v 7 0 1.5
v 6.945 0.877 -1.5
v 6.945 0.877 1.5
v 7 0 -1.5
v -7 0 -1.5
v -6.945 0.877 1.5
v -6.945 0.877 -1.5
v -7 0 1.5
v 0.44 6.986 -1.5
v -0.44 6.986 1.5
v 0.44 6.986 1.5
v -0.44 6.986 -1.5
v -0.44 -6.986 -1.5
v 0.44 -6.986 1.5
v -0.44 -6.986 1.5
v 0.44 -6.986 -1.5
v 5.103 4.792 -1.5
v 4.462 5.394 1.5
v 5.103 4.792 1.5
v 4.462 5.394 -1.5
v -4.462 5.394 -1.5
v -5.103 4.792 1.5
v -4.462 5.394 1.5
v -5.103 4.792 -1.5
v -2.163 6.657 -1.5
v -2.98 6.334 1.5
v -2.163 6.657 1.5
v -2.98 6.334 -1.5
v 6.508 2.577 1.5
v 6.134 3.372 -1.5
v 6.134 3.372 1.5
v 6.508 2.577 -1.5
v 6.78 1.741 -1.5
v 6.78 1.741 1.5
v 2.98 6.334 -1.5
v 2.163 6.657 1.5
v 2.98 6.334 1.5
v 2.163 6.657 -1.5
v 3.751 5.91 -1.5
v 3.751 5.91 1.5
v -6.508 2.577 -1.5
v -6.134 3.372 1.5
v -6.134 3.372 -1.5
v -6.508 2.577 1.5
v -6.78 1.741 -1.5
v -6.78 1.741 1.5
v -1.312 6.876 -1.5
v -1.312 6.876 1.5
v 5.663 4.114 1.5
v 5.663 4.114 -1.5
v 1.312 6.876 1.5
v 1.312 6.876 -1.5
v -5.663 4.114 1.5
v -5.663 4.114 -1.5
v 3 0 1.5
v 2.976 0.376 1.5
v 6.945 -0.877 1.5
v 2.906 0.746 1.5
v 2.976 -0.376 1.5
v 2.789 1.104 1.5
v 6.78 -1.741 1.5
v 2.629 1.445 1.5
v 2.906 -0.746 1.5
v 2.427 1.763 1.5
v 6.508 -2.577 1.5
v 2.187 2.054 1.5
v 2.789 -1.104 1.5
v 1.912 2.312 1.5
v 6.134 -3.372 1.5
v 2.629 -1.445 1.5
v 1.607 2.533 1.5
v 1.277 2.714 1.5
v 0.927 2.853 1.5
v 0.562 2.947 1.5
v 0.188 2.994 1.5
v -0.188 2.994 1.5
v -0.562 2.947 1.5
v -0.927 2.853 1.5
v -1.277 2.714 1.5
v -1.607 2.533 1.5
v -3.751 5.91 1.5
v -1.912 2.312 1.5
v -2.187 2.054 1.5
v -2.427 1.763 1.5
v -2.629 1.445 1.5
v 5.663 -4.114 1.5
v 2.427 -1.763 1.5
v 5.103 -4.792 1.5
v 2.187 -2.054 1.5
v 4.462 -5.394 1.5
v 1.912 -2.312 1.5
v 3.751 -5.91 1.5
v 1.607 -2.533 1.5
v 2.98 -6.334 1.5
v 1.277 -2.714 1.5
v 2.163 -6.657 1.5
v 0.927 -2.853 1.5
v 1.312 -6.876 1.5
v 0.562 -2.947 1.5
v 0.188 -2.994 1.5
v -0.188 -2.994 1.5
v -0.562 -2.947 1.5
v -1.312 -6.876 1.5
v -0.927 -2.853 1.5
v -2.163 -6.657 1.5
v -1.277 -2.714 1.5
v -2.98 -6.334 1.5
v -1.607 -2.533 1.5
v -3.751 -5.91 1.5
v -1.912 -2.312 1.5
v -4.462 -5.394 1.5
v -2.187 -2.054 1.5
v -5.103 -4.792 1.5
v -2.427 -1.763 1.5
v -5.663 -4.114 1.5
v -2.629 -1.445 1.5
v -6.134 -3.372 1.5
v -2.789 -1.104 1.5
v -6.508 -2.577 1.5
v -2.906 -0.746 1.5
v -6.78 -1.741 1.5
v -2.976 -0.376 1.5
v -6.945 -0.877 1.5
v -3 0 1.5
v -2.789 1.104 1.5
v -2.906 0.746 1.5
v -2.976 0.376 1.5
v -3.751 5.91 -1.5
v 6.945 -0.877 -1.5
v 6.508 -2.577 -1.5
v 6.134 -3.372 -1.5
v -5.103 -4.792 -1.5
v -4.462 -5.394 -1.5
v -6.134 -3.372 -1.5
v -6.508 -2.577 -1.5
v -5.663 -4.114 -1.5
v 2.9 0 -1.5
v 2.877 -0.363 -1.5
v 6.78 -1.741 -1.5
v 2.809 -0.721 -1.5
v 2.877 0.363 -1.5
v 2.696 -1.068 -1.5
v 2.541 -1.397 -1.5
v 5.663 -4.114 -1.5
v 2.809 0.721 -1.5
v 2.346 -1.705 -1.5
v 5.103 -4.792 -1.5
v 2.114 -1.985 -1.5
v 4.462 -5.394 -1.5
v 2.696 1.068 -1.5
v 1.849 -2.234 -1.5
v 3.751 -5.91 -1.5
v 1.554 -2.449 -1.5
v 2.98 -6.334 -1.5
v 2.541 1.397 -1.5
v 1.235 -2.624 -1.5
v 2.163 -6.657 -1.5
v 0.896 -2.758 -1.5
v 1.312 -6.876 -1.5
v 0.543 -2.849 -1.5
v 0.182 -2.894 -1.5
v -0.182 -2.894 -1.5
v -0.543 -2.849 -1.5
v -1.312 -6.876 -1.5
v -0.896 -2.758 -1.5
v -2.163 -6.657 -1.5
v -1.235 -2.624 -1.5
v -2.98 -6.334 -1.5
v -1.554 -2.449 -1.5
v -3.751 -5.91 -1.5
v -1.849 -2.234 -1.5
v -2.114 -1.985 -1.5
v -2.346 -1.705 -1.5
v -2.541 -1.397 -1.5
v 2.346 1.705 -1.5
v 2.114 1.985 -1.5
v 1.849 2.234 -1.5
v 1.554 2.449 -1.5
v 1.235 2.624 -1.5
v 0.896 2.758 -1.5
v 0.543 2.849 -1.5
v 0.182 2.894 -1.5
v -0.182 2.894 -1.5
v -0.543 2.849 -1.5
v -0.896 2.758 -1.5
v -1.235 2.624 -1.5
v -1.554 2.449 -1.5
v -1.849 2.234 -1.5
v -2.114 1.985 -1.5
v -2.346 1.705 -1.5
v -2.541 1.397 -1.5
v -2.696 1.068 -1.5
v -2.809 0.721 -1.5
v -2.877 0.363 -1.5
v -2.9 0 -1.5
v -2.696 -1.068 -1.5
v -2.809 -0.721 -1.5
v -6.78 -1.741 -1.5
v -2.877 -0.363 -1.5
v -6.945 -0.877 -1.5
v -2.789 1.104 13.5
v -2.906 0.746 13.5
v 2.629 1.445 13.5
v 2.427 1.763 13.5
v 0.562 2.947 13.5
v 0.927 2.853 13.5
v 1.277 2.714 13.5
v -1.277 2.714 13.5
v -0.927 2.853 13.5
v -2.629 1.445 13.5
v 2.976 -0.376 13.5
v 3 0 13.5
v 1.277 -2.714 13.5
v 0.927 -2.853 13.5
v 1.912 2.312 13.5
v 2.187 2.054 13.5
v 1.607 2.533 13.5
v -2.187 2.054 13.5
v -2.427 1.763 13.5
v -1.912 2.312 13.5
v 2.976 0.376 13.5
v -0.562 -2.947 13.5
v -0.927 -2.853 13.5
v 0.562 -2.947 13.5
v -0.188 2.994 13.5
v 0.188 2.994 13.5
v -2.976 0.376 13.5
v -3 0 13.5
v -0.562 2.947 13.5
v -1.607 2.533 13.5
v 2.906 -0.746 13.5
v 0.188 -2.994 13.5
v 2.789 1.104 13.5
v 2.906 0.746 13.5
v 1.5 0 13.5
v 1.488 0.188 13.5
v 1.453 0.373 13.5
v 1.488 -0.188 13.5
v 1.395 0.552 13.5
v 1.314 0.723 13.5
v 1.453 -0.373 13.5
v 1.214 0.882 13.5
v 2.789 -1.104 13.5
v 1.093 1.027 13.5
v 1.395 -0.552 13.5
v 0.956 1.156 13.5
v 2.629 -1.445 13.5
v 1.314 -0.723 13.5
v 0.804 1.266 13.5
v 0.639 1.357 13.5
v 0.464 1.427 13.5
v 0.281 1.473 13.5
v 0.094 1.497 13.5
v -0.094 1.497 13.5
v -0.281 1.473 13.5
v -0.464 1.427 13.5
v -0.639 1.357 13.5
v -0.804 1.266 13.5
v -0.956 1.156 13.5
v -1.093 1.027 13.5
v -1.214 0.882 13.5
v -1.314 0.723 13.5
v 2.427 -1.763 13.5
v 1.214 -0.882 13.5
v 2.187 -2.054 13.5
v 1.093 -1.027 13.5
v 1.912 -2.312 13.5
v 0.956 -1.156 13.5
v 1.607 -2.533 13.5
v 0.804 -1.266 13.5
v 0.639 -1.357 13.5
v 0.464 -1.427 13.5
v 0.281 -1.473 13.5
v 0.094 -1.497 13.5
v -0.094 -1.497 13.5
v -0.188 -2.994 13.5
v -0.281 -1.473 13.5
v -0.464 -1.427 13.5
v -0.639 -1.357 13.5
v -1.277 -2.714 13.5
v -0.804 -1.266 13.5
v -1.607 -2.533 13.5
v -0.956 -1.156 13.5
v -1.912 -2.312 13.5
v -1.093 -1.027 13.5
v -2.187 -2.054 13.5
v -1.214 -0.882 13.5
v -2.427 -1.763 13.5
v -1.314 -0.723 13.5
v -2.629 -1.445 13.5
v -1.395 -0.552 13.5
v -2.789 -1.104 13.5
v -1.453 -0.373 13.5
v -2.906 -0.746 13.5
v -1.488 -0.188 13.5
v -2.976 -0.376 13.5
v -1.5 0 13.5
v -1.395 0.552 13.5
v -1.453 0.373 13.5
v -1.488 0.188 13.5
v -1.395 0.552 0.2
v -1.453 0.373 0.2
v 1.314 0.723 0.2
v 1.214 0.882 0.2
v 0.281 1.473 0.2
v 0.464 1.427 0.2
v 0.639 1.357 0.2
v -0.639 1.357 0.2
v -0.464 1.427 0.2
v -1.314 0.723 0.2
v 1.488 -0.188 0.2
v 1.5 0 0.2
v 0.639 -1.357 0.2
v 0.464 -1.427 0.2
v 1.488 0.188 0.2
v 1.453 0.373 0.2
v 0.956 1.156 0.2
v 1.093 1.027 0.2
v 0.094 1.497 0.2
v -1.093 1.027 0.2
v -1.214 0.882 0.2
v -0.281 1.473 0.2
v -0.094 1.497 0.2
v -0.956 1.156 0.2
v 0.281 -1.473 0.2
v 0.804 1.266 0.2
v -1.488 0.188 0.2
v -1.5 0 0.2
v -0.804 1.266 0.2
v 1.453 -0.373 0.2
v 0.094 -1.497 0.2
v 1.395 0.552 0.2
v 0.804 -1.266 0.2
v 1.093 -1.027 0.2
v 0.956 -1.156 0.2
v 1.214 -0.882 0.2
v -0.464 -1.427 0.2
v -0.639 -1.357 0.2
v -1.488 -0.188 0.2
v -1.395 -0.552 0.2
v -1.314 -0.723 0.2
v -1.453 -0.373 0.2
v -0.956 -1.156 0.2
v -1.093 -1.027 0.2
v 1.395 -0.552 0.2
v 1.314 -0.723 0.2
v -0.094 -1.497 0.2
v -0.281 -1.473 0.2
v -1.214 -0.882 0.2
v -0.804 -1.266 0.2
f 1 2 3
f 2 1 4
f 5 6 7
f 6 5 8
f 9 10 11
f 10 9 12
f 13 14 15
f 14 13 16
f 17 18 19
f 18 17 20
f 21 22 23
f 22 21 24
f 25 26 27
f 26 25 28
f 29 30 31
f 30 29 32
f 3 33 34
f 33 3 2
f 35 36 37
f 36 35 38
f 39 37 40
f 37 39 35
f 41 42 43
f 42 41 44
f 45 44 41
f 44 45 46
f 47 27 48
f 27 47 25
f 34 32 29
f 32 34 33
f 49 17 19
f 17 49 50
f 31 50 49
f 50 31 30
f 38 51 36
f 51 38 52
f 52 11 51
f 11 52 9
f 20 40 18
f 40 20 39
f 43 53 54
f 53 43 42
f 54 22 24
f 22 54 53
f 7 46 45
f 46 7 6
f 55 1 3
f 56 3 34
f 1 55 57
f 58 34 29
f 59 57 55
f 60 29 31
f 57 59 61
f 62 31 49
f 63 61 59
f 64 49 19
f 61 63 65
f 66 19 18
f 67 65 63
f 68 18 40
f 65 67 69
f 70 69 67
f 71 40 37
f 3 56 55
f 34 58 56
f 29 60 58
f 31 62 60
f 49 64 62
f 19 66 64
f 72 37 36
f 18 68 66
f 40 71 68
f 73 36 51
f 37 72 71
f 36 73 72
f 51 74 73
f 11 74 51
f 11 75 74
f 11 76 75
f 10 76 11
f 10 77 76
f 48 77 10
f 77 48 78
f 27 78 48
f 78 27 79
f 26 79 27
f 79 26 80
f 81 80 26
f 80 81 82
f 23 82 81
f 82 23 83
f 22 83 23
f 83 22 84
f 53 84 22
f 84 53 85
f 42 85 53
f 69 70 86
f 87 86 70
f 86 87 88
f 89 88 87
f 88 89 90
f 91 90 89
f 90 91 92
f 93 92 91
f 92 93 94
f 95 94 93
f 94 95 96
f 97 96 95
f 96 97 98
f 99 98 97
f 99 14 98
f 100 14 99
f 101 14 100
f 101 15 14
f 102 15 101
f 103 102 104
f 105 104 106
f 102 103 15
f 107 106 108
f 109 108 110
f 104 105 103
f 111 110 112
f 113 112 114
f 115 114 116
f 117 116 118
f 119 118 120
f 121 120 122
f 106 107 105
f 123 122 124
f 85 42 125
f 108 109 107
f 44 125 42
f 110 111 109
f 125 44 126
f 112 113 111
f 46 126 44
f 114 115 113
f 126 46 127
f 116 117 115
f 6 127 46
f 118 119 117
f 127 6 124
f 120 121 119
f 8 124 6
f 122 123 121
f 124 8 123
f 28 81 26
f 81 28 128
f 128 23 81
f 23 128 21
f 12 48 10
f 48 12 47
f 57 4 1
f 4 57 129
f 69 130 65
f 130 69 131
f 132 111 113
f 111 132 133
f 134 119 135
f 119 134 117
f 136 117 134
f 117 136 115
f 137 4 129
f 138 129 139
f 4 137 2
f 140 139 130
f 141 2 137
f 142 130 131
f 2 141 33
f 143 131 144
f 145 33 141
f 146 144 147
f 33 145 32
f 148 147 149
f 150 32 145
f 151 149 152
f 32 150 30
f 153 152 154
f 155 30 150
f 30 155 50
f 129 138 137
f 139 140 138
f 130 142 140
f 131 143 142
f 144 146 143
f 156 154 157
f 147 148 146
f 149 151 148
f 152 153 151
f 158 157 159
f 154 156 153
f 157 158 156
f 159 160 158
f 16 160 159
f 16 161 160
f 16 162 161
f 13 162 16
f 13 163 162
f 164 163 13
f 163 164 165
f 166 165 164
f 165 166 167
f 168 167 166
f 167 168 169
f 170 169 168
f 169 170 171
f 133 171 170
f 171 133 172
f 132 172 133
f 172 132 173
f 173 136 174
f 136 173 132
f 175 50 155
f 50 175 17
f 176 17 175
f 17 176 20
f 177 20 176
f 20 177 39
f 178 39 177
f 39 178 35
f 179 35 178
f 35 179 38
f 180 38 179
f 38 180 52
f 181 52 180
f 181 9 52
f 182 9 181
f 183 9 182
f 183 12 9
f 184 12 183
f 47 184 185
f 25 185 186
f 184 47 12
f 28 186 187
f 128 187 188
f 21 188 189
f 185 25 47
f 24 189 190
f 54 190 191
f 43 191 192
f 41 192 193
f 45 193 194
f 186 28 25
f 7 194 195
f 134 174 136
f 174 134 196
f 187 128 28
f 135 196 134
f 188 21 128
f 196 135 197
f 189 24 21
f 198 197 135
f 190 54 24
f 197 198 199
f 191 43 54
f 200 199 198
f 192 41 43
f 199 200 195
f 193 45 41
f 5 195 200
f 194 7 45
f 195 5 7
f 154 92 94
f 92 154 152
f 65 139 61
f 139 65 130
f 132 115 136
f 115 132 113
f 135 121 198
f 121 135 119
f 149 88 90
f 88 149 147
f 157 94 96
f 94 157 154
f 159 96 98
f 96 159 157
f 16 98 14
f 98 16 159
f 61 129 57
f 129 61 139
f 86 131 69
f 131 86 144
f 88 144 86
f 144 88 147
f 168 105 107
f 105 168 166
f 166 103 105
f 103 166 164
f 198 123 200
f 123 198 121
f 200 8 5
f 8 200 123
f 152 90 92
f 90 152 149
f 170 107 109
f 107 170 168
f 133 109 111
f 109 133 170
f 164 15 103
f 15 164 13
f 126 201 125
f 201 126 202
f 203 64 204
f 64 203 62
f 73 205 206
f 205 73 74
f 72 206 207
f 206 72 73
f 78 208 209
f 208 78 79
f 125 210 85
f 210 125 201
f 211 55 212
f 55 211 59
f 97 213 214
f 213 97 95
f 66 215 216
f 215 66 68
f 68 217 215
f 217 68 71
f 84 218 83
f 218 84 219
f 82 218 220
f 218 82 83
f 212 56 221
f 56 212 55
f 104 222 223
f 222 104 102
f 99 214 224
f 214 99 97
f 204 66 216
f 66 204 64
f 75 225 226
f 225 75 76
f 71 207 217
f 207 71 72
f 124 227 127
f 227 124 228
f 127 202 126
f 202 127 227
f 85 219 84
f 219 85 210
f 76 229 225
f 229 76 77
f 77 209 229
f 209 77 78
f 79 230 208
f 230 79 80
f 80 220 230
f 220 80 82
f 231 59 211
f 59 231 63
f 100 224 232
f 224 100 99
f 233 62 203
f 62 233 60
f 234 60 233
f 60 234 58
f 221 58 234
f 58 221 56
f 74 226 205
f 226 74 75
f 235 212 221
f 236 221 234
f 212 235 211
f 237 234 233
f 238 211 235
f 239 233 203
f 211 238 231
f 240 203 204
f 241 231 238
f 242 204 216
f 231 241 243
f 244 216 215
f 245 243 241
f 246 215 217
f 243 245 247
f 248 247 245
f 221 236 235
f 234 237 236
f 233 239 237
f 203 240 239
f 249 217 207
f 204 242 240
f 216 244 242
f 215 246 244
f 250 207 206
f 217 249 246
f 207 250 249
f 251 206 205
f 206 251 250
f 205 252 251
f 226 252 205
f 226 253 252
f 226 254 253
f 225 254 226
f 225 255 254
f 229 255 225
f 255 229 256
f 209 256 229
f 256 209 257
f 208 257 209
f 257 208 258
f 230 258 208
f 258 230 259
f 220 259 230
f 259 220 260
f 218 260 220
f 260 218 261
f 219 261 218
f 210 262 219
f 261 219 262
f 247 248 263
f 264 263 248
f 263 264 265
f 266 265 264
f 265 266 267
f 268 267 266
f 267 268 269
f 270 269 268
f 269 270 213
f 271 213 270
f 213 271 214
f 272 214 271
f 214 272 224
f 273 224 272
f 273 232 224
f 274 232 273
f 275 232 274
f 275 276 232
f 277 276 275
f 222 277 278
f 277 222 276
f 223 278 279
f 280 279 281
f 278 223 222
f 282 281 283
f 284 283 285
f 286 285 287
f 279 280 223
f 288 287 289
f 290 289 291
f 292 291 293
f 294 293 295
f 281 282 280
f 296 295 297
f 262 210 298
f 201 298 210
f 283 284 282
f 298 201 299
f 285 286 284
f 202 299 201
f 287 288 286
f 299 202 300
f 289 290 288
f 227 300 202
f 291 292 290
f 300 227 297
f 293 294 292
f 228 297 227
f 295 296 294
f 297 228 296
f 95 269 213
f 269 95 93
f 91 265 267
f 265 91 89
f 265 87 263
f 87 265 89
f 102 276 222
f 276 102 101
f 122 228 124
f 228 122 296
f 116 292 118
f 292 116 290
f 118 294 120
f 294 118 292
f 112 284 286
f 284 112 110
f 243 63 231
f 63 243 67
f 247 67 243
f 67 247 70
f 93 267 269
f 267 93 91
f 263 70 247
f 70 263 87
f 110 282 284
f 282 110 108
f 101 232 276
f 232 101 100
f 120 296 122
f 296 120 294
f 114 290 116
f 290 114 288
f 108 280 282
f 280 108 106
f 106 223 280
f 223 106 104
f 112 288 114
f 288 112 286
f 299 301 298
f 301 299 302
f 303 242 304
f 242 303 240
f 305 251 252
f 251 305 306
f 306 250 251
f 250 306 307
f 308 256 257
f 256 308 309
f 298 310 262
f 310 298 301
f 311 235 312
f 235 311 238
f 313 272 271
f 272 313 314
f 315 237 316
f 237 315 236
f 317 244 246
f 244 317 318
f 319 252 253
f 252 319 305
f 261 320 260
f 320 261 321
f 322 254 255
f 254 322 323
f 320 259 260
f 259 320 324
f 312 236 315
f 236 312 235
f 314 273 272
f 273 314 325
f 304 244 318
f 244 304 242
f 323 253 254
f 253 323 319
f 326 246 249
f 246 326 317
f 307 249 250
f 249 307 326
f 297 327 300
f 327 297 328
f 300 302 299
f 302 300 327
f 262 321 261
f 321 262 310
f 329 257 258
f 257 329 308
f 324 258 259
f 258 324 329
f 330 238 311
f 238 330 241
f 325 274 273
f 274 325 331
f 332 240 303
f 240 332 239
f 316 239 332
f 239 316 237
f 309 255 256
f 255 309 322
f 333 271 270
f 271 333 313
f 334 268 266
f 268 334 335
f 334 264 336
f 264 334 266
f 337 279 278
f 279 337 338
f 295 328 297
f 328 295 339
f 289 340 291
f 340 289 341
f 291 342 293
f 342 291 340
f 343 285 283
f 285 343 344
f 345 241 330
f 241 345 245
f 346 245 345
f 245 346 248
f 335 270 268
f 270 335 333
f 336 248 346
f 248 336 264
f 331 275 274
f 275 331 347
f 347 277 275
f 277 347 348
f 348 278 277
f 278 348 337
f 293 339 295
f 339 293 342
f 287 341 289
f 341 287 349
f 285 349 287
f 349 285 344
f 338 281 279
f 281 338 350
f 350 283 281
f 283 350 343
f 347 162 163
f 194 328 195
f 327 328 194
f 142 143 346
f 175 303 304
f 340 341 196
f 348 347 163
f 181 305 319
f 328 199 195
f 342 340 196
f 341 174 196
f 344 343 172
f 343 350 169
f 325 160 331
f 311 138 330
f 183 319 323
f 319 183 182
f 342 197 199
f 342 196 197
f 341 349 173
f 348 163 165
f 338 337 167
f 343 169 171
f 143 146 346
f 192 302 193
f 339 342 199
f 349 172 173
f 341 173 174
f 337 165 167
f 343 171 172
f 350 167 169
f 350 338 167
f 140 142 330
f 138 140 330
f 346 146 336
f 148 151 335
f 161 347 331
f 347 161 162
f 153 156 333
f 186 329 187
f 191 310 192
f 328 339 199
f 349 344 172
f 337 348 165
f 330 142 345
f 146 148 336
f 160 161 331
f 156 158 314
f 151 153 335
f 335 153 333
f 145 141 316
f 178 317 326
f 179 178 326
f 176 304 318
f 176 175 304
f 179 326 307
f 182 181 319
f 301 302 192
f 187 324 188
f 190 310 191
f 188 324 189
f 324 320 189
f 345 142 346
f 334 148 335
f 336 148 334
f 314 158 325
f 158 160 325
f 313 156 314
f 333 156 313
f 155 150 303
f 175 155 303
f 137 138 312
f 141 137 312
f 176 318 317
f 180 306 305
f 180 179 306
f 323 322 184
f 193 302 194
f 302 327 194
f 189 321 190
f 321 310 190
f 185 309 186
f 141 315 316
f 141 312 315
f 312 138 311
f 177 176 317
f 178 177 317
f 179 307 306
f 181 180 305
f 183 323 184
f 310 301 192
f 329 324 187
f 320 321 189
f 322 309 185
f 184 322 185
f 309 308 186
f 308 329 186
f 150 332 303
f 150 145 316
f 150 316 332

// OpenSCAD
$fn = 50;


difference() {
	union() {
		translate(v = [0, 0, -1.5000000000]) {
			rotate(a = [0, 0, 0]) {
				cylinder(h = 3, r = 7.0000000000);
			}
		}
		translate(v = [0, 0, -1.5000000000]) {
			rotate(a = [0, 0, 0]) {
				cylinder(h = 15, r = 3.0000000000);
			}
		}
	}
	union() {
		translate(v = [0, 0, -125.0000000000]) {
			rotate(a = [0, 0, 0]) {
				cylinder(h = 250, r = 1.5000000000);
			}
		}
		#translate(v = [0, 0, 0.2000000000]) {
			rotate(a = [0, 180, 0]) {
				cylinder(h = 1.7000000000, r1 = 1.5000000000, r2 = 2.9000000000);
			}
		}
		#translate(v = [0, 0, 13.5000000000]) {
			rotate(a = [0, 180, 0]) {
				cylinder(h = 15, r = 1.5000000000);
			}
		}
	}
}
